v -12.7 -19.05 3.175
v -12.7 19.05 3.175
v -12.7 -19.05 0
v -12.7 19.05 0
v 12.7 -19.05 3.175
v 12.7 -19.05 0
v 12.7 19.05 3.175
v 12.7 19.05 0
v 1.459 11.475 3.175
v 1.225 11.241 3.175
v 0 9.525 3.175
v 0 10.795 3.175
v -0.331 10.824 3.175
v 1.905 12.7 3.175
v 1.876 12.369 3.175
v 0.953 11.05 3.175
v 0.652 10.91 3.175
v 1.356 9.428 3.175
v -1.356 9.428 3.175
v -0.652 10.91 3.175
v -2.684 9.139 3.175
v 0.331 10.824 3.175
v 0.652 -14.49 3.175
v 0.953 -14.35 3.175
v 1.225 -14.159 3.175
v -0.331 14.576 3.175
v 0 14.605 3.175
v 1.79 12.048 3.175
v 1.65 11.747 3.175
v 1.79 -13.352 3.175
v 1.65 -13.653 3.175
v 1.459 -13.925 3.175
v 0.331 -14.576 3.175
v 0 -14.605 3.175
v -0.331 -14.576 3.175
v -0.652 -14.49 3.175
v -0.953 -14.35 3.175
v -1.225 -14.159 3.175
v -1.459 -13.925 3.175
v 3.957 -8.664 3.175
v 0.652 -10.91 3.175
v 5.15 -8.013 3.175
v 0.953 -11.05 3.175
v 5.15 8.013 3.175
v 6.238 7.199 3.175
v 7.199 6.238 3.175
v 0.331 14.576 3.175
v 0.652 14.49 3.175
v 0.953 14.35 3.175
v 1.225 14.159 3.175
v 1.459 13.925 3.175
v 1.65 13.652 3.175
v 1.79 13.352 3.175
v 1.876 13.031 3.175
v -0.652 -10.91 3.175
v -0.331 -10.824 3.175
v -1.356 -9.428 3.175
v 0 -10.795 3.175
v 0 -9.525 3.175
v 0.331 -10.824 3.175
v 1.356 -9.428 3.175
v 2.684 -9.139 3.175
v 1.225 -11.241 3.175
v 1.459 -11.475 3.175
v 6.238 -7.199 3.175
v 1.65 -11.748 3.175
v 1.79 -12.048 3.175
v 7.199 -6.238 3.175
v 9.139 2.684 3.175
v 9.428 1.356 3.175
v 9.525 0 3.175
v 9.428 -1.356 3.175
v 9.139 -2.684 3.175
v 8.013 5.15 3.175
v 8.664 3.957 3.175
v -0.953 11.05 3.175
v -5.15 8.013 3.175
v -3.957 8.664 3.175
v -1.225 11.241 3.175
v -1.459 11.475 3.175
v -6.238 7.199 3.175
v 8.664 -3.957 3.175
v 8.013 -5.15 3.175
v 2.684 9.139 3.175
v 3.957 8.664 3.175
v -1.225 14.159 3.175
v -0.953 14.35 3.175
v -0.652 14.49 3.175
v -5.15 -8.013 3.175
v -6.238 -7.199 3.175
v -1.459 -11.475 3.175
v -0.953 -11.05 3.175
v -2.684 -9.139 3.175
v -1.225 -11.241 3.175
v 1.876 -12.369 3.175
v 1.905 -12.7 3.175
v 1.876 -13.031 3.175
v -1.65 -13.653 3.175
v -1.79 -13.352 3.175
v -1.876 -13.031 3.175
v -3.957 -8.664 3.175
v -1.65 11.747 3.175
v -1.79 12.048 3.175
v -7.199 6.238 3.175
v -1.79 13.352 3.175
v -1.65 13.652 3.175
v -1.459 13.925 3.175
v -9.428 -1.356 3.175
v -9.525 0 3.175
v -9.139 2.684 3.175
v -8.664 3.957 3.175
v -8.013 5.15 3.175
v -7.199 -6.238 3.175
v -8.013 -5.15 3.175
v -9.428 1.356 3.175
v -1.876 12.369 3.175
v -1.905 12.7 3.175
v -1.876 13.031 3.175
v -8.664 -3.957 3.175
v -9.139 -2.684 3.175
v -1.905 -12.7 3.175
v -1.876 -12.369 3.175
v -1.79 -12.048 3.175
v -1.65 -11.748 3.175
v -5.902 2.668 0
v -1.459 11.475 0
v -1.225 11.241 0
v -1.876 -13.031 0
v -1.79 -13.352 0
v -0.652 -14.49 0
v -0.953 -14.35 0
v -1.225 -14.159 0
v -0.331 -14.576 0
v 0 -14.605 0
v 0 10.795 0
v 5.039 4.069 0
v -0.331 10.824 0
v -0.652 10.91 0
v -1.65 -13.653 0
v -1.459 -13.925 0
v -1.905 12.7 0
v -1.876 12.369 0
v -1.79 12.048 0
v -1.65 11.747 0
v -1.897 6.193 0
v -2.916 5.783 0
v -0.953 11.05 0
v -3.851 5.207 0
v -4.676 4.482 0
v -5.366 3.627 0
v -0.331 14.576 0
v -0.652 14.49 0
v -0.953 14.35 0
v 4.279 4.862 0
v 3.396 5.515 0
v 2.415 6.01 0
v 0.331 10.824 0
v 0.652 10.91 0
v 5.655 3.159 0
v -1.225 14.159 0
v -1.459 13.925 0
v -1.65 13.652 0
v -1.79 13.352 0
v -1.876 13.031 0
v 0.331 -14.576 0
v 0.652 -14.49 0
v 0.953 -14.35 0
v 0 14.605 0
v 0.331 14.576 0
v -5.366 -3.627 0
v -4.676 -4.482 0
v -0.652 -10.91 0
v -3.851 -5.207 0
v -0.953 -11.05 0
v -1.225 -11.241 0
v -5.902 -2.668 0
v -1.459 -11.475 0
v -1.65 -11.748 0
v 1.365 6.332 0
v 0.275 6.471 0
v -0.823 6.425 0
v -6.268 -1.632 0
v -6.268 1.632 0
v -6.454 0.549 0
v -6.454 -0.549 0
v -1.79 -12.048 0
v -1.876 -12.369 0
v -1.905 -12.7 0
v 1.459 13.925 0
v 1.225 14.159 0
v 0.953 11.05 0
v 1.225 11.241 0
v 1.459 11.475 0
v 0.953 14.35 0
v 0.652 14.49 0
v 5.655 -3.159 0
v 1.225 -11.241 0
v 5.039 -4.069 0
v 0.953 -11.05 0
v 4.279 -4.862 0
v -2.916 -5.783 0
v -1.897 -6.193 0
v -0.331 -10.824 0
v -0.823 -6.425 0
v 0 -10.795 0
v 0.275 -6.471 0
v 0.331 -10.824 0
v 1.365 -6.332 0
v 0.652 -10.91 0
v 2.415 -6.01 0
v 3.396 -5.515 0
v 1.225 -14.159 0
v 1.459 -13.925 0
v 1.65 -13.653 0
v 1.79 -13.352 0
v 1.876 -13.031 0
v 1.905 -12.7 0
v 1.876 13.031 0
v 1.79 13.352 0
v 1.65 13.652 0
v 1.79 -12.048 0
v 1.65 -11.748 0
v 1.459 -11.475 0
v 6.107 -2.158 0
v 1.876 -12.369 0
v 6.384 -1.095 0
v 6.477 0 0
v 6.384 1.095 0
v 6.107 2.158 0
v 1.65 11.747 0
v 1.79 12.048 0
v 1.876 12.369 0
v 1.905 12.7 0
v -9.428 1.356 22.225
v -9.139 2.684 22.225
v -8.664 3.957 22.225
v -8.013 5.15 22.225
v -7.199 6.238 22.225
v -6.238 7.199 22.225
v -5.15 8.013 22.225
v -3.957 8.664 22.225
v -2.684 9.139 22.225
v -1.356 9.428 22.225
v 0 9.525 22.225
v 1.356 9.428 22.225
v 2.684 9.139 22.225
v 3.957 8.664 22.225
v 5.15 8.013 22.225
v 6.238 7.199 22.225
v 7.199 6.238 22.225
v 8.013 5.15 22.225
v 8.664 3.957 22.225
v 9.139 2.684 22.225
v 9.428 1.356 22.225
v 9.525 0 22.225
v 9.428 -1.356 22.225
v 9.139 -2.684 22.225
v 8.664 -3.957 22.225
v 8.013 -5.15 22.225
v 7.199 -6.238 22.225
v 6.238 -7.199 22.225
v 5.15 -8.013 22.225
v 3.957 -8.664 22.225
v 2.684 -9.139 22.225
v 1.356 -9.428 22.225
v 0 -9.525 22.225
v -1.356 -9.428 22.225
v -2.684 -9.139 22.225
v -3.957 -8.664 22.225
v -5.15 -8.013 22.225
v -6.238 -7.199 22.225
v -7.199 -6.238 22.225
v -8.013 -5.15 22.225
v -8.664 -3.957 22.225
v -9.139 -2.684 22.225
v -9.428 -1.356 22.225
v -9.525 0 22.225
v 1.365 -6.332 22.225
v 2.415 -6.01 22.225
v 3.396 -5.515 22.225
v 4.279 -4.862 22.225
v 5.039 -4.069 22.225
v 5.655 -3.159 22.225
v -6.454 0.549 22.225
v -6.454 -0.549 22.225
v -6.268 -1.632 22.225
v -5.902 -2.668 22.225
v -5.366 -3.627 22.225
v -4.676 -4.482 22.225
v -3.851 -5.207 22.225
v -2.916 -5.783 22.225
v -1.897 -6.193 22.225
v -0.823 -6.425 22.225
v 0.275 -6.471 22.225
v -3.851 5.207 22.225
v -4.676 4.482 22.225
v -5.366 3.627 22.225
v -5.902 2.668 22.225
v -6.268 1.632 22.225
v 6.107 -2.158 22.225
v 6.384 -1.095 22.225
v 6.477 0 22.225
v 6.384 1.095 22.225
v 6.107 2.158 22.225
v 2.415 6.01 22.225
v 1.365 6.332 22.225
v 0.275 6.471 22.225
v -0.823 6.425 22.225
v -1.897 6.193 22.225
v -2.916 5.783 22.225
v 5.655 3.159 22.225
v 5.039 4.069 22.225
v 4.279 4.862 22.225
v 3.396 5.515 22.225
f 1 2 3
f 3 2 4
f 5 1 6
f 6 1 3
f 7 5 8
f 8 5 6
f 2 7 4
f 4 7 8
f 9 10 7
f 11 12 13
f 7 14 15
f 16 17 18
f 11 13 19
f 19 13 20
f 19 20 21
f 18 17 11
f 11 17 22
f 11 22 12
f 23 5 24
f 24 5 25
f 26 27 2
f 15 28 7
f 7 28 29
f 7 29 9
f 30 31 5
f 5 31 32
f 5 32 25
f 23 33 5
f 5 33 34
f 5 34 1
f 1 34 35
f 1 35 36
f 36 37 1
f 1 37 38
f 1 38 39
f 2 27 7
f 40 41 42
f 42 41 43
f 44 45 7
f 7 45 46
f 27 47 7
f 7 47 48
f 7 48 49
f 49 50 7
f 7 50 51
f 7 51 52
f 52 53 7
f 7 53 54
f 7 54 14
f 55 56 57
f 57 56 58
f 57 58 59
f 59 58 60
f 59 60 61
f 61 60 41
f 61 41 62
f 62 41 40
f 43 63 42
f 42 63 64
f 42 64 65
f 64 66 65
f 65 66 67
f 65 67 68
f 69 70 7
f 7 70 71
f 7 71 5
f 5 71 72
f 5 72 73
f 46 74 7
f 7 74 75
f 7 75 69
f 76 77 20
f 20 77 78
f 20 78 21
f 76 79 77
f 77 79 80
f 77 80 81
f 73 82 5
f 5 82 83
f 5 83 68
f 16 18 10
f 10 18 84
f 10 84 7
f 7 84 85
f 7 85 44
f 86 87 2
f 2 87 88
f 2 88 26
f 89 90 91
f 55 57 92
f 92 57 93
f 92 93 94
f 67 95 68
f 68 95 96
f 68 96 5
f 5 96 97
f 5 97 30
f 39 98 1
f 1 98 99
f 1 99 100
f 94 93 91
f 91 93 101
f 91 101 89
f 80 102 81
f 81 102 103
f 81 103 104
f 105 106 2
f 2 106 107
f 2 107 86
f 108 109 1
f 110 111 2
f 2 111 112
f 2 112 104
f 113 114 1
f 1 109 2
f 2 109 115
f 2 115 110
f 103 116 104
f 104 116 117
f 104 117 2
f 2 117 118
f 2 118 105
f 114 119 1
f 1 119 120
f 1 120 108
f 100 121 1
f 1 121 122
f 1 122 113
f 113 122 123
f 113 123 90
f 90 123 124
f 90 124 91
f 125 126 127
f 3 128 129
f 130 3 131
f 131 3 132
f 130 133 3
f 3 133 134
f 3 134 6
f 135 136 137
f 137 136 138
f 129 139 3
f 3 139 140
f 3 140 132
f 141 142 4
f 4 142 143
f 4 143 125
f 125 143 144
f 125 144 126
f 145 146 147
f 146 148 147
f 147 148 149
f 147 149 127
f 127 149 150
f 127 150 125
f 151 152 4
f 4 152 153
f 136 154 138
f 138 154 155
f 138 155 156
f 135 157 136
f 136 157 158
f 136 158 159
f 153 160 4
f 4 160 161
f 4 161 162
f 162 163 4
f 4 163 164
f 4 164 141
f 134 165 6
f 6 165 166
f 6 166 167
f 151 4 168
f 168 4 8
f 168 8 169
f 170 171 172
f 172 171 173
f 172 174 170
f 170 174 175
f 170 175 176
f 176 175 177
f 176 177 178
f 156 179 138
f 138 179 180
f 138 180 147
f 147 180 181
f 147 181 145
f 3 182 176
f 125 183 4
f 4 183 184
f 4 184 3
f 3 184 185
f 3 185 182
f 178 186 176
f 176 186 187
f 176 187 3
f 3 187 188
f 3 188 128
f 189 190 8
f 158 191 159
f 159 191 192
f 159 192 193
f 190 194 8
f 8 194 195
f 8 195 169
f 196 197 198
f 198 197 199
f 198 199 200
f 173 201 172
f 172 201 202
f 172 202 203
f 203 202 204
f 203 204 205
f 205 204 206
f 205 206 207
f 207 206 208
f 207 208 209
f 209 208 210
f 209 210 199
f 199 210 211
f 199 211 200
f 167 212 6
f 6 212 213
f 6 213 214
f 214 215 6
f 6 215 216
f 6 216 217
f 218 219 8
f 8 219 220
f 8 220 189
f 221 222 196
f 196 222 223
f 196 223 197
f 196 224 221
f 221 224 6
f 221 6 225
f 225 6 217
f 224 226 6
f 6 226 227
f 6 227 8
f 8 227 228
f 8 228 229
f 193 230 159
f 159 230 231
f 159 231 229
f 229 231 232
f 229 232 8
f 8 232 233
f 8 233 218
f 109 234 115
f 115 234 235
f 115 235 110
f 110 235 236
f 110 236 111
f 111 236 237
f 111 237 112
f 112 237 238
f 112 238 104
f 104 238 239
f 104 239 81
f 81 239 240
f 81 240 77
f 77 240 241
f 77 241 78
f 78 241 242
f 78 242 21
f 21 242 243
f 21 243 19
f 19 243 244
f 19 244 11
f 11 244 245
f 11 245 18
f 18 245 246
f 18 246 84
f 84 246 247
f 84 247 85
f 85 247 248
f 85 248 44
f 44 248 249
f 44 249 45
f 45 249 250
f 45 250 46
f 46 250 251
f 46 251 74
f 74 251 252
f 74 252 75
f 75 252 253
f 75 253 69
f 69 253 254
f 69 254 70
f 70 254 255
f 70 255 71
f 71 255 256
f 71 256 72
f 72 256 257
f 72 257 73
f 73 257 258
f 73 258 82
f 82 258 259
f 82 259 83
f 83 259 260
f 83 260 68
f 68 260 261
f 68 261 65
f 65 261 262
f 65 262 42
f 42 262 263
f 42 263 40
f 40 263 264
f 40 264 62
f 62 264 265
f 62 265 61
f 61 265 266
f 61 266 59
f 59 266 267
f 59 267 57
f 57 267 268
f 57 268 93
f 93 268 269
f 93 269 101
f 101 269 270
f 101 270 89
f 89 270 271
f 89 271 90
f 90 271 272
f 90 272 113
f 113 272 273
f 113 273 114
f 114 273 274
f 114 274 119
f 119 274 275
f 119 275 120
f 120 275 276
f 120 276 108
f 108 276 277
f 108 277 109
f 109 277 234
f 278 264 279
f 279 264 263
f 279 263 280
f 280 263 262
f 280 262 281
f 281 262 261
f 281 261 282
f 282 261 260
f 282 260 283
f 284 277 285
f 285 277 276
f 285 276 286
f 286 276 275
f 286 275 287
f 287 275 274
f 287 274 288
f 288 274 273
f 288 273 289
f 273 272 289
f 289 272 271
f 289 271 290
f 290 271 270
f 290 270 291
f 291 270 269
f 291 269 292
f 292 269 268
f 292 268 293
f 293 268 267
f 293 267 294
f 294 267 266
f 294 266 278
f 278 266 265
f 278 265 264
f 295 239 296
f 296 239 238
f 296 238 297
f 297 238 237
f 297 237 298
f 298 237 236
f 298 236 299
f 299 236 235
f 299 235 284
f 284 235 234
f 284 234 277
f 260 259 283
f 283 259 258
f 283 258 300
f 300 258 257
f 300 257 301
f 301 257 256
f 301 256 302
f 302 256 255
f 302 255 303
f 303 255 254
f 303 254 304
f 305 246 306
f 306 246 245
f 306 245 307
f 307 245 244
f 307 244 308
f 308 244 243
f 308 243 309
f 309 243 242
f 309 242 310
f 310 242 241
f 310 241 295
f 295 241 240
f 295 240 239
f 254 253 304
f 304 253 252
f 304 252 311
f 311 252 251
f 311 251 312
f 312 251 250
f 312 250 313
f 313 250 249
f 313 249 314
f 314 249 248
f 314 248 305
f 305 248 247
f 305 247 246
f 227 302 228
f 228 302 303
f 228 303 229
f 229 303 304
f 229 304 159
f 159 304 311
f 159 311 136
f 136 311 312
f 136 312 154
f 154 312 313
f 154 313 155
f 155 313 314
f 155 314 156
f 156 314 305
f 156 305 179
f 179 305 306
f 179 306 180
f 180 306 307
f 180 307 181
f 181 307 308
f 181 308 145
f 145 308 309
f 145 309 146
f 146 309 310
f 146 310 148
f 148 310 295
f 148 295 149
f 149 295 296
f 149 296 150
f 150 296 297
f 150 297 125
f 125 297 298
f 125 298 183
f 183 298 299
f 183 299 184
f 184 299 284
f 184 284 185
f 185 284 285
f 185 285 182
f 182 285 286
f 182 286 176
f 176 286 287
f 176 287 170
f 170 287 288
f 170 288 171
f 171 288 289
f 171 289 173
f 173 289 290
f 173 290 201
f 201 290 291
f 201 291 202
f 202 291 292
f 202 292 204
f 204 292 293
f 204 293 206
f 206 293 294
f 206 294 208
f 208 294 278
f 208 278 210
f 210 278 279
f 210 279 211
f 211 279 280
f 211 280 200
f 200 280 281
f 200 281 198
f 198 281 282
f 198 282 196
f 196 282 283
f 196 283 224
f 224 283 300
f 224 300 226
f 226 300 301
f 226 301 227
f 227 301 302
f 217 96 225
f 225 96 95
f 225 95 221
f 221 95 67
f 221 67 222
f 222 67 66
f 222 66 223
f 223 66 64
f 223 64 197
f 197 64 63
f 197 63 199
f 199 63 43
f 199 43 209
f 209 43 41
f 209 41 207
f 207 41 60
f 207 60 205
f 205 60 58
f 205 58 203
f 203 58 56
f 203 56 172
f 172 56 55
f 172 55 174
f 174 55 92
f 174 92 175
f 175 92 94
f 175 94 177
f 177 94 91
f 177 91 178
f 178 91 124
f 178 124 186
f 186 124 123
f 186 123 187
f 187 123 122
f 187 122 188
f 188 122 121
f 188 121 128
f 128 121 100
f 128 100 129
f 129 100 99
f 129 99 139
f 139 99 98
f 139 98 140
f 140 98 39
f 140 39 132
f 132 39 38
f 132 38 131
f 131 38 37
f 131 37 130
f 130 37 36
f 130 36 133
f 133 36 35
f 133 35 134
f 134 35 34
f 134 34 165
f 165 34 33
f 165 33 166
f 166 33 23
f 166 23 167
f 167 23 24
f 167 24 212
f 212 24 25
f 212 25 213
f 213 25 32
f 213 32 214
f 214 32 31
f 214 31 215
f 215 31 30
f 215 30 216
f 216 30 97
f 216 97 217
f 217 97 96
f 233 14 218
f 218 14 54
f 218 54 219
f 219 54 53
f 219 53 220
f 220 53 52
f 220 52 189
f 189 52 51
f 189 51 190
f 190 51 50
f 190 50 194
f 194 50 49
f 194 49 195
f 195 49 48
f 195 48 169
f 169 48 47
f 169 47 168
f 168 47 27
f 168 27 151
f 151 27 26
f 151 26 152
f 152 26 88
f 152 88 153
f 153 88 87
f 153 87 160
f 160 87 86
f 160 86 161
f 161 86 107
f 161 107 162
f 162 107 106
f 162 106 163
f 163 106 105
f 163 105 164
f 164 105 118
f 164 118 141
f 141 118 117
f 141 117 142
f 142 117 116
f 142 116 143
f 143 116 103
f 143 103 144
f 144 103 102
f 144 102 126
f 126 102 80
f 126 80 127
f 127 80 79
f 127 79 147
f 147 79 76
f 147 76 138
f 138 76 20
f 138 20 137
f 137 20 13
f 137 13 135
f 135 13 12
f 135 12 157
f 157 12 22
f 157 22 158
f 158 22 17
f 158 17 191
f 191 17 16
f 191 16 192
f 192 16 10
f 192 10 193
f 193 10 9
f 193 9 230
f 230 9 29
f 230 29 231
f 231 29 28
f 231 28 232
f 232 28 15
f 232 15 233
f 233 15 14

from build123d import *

# Parameters (mm, degrees)
SKETCH1_W           = 25.4
SKETCH1_H           = 38.1
BOSS_EXTRUDE1_DEPTH = 3.175
SKETCH2_R           = 9.525
BOSS_EXTRUDE2_DEPTH = 19.05
SKETCH3_R           = 6.477
CUT_EXTRUDE1_DEPTH  = 32.908355097
SKETCH4_R           = 1.905
CUT_EXTRUDE2_DEPTH  = 30.784140075


with BuildPart() as part:
    # Sketch1 → Boss-Extrude1 (new body)
    with BuildSketch(Plane.XY):
        Rectangle(SKETCH1_W, SKETCH1_H)
    extrude(amount=BOSS_EXTRUDE1_DEPTH)

    # Sketch2 → Boss-Extrude2 (add)
    with BuildSketch(Plane.XY.offset(3.175)):
        with Locations(Location((0, 0, 0), (0, 0, 180))):
            Circle(SKETCH2_R)
    extrude(amount=BOSS_EXTRUDE2_DEPTH)

    # Sketch3 → Cut-Extrude1 (cut, through all)
    with BuildSketch(Plane.XY.offset(22.225)):
        Circle(SKETCH3_R)
    extrude(amount=-CUT_EXTRUDE1_DEPTH, mode=Mode.SUBTRACT)

    # Sketch4 → Cut-Extrude2 (cut, through all)
    with BuildSketch(Plane.XY.offset(3.175)):
        with Locations((0, 12.7)):
            Circle(SKETCH4_R)
        with Locations((0, -12.7)):
            Circle(SKETCH4_R)
    extrude(amount=-CUT_EXTRUDE2_DEPTH, mode=Mode.SUBTRACT)


solid = part.part
